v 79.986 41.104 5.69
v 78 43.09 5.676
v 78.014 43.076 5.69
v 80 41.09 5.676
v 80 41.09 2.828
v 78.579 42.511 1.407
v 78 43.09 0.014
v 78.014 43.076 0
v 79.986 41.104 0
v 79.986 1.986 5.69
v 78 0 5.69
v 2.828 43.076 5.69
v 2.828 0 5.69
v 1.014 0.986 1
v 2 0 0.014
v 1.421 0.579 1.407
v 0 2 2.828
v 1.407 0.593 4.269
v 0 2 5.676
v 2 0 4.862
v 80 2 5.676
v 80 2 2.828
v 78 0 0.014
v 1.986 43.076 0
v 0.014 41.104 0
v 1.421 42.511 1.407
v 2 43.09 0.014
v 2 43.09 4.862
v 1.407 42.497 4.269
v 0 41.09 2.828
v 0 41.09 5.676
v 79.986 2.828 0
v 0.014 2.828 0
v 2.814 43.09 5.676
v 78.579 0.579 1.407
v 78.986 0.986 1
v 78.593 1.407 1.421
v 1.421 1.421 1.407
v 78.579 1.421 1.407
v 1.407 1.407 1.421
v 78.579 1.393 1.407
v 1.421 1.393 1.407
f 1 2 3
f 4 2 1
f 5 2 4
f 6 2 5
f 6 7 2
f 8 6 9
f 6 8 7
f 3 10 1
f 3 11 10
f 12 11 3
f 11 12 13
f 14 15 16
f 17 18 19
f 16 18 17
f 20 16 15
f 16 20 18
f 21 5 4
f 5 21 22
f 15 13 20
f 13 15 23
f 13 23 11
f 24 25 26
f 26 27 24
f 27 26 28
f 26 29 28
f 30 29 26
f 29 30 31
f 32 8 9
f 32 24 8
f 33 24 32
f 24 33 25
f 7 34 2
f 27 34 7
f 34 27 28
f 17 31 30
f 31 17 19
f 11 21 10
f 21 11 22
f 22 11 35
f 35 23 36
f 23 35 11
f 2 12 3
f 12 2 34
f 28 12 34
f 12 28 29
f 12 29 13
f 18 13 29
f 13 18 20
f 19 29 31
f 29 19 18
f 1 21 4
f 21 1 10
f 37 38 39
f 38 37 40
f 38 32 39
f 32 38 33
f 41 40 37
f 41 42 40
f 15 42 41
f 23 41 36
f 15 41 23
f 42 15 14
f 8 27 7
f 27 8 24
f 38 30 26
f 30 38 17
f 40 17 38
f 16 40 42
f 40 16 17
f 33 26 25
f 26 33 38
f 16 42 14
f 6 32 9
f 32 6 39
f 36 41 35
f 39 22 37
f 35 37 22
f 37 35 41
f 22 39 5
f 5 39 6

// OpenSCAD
/* doodle-meta {"version":1,"parameters":{"width":{"label":"Overall width","description":"Changes the body width along X","unit":"mm","feature":"body_width"},"depth":{"label":"Overall depth","description":"Changes the body depth along Y","unit":"mm","feature":"body_depth"},"height":{"label":"Overall height","description":"Changes the body height along Z","unit":"mm","feature":"body_height"},"chamfer_size":{"label":"Chamfer size","description":"Size of the 45-degree chamfer on all edges","unit":"mm","feature":"chamfer"}},"features":{"body_width":{"kind":"dimension","axis":"x","label":"Overall width"},"body_depth":{"kind":"dimension","axis":"y","label":"Overall depth"},"body_height":{"kind":"dimension","axis":"z","label":"Overall height"},"chamfer":{"kind":"region","label":"Chamfered edges","min":[0,0,0],"max":[{"parameter":"width","scale":1,"offset":0},{"parameter":"depth","scale":1,"offset":0},{"parameter":"height","scale":1,"offset":0}]}}} */

// Parameters
width = 80.0;
depth = 43.09;
height = 5.69;
chamfer_size = 2.0;

// Derived constants
eps = 0.01;

// Module for the base block with chamfered vertical edges (XY profile extruded)
// The XY profile is a rectangle with chamfered corners.
module block_body() {
    // Create the 2D profile in XY plane
    // Rectangle from (0,0) to (width, depth)
    // Chamfer corners by chamfer_size
    
    // We can use hull or minkowski, but explicit polygon is cleaner for chamfers.
    // Points for the polygon (counter-clockwise):
    // Bottom-Left: (chamfer, 0) -> (0, chamfer)
    // Bottom-Right: (width-chamfer, 0) -> (width, chamfer)
    // Top-Right: (width, depth-chamfer) -> (width-chamfer, depth)
    // Top-Left: (chamfer, depth) -> (0, depth-chamfer)
    
    polygon([
        [chamfer_size, 0],
        [width - chamfer_size, 0],
        [width, chamfer_size],
        [width, depth - chamfer_size],
        [width - chamfer_size, depth],
        [chamfer_size, depth],
        [0, depth - chamfer_size],
        [0, chamfer_size]
    ]);
}

// Module for the chamfer cutters on top and bottom faces
// These are prisms that cut the horizontal edges.
// A 45-degree chamfer of size 'c' on a horizontal edge can be modeled as 
// subtracting a triangular prism from the corners.
// However, since we already chamfered the vertical edges, the "horizontal" edges 
// are the ones running along X (front/back) and Y (left/right) at Z=0 and Z=height.
// The intersection of vertical and horizontal chamfers creates complex corner geometry.
// A robust way to chamfer ALL edges of a box is to use a Minkowski difference 
// or a hull of scaled shapes, but for simple 45-degree chamfers on a rectangular block,
// we can subtract 4 prisms for the top edges and 4 for the bottom edges, 
// BUT the vertical chamfers already removed the corners.
// Actually, the standard way to chamfer all edges of a rectangular block is:
// 1. Start with a box.
// 2. Subtract 4 vertical prisms for the vertical edges (done in block_body).
// 3. Subtract 4 horizontal prisms for the top edges (along X and Y).
// 4. Subtract 4 horizontal prisms for the bottom edges (along X and Y).
// The vertical chamfers create new "edges" at the top and bottom of the vertical chamfers.
// The horizontal chamfers must intersect these.

// Let's define the cutters for the top and bottom horizontal edges.
// Top edges are at Z = height.
// Bottom edges are at Z = 0.

// Cutter for an edge along X at Y=0 (Front) and Z=height (Top)
// This is a triangular prism running along X.
// The triangle is in the YZ plane.
// Vertices of the triangle to remove: (0, height), (chamfer, height), (0, height-chamfer)
// Wait, the block body already has the vertical chamfer.
// The vertical chamfer at the front-left corner (X=0, Y=0) removes material near (0,0).
// The top-front edge runs along X at Y=0, Z=height.
// The chamfer on this edge removes a triangle in the YZ plane at each X.
// Triangle vertices: (Y=0, Z=height), (Y=chamfer, Z=height), (Y=0, Z=height-chamfer).
// This prism extends along X from 0 to width.

module top_front_chamfer_cutter() {
    translate([0, 0, height])
    rotate([0, 0, 0]) // Axis along X
    // Create a triangular prism along X
    // The triangle is in YZ. 
    // We need to cut the corner at Y=0, Z=height.
    // The cut is defined by the plane Y + Z = height + chamfer? No.
    // The chamfer connects (0, height-chamfer) to (chamfer, height).
    // So we remove the triangle with vertices (0, height), (chamfer, height), (0, height-chamfer).
    // This triangle is in the YZ plane.
    // Extrude along X.
    polygon([
        [0, 0], // Relative to (Y=0, Z=height) -> (0,0) is (0, height)
        [chamfer_size, 0], // (chamfer, height)
        [0, -chamfer_size] // (0, height-chamfer)
    ]);
    // Extrude along X
    // We need to rotate the polygon so it lies in YZ and extrudes along X.
    // polygon() creates in XY. 
    // So we create in XY, then rotate to YZ.
    // XY points: (0,0), (c,0), (0,-c).
    // Rotate -90 around X? No.
    // Let's just use a cube and rotate it, or define the polygon carefully.
    // Polygon in XY: (0,0), (c,0), (0,-c).
    // Rotate 90 deg around Y to put it in ZY? 
    // Let's use a simpler approach: subtract a rotated cube.
    // A 45 deg chamfer is a cube rotated 45 deg around the edge axis.
    // Edge along X. Rotate around X.
    // Cube centered at (0, 0, height) with size (width, c*sqrt(2), c*sqrt(2))?
    // No, standard chamfer cutter:
    // Cube of size (width, chamfer, chamfer) at corner (0,0,height).
    // Rotate 45 deg around X axis.
    // This cuts the corner.
    translate([0, 0, height])
    rotate([45, 0, 0])
    translate([-eps, -eps, -eps])
    cube([width + 2*eps, chamfer_size + eps, chamfer_size + eps]);
}

module top_back_chamfer_cutter() {
    translate([0, depth, height])
    rotate([45, 0, 0])
    translate([-eps, -eps, -eps])
    cube([width + 2*eps, chamfer_size + eps, chamfer_size + eps]);
}

module top_left_chamfer_cutter() {
    // Edge along Y at X=0, Z=height
    translate([0, 0, height])
    rotate([0, 45, 0])
    translate([-eps, -eps, -eps])
    cube([chamfer_size + eps, depth + 2*eps, chamfer_size + eps]);
}

module top_right_chamfer_cutter() {
    // Edge along Y at X=width, Z=height
    translate([width, 0, height])
    rotate([0, 45, 0])
    translate([-eps, -eps, -eps])
    cube([chamfer_size + eps, depth + 2*eps, chamfer_size + eps]);
}

module bottom_front_chamfer_cutter() {
    translate([0, 0, 0])
    rotate([-45, 0, 0])
    translate([-eps, -eps, -eps])
    cube([width + 2*eps, chamfer_size + eps, chamfer_size + eps]);
}

module bottom_back_chamfer_cutter() {
    translate([0, depth, 0])
    rotate([-45, 0, 0])
    translate([-eps, -eps, -eps])
    cube([width + 2*eps, chamfer_size + eps, chamfer_size + eps]);
}

module bottom_left_chamfer_cutter() {
    translate([0, 0, 0])
    rotate([0, -45, 0])
    translate([-eps, -eps, -eps])
    cube([chamfer_size + eps, depth + 2*eps, chamfer_size + eps]);
}

module bottom_right_chamfer_cutter() {
    translate([width, 0, 0])
    rotate([0, -45, 0])
    translate([-eps, -eps, -eps])
    cube([chamfer_size + eps, depth + 2*eps, chamfer_size + eps]);
}

// Main design
difference() {
    // 1. Base body with vertical chamfers
    linear_extrude(height)
    block_body();
    
    // 2. Subtract horizontal chamfers (Top)
    top_front_chamfer_cutter();
    top_back_chamfer_cutter();
    top_left_chamfer_cutter();
    top_right_chamfer_cutter();
    
    // 3. Subtract horizontal chamfers (Bottom)
    bottom_front_chamfer_cutter();
    bottom_back_chamfer_cutter();
    bottom_left_chamfer_cutter();
    bottom_right_chamfer_cutter();
}
